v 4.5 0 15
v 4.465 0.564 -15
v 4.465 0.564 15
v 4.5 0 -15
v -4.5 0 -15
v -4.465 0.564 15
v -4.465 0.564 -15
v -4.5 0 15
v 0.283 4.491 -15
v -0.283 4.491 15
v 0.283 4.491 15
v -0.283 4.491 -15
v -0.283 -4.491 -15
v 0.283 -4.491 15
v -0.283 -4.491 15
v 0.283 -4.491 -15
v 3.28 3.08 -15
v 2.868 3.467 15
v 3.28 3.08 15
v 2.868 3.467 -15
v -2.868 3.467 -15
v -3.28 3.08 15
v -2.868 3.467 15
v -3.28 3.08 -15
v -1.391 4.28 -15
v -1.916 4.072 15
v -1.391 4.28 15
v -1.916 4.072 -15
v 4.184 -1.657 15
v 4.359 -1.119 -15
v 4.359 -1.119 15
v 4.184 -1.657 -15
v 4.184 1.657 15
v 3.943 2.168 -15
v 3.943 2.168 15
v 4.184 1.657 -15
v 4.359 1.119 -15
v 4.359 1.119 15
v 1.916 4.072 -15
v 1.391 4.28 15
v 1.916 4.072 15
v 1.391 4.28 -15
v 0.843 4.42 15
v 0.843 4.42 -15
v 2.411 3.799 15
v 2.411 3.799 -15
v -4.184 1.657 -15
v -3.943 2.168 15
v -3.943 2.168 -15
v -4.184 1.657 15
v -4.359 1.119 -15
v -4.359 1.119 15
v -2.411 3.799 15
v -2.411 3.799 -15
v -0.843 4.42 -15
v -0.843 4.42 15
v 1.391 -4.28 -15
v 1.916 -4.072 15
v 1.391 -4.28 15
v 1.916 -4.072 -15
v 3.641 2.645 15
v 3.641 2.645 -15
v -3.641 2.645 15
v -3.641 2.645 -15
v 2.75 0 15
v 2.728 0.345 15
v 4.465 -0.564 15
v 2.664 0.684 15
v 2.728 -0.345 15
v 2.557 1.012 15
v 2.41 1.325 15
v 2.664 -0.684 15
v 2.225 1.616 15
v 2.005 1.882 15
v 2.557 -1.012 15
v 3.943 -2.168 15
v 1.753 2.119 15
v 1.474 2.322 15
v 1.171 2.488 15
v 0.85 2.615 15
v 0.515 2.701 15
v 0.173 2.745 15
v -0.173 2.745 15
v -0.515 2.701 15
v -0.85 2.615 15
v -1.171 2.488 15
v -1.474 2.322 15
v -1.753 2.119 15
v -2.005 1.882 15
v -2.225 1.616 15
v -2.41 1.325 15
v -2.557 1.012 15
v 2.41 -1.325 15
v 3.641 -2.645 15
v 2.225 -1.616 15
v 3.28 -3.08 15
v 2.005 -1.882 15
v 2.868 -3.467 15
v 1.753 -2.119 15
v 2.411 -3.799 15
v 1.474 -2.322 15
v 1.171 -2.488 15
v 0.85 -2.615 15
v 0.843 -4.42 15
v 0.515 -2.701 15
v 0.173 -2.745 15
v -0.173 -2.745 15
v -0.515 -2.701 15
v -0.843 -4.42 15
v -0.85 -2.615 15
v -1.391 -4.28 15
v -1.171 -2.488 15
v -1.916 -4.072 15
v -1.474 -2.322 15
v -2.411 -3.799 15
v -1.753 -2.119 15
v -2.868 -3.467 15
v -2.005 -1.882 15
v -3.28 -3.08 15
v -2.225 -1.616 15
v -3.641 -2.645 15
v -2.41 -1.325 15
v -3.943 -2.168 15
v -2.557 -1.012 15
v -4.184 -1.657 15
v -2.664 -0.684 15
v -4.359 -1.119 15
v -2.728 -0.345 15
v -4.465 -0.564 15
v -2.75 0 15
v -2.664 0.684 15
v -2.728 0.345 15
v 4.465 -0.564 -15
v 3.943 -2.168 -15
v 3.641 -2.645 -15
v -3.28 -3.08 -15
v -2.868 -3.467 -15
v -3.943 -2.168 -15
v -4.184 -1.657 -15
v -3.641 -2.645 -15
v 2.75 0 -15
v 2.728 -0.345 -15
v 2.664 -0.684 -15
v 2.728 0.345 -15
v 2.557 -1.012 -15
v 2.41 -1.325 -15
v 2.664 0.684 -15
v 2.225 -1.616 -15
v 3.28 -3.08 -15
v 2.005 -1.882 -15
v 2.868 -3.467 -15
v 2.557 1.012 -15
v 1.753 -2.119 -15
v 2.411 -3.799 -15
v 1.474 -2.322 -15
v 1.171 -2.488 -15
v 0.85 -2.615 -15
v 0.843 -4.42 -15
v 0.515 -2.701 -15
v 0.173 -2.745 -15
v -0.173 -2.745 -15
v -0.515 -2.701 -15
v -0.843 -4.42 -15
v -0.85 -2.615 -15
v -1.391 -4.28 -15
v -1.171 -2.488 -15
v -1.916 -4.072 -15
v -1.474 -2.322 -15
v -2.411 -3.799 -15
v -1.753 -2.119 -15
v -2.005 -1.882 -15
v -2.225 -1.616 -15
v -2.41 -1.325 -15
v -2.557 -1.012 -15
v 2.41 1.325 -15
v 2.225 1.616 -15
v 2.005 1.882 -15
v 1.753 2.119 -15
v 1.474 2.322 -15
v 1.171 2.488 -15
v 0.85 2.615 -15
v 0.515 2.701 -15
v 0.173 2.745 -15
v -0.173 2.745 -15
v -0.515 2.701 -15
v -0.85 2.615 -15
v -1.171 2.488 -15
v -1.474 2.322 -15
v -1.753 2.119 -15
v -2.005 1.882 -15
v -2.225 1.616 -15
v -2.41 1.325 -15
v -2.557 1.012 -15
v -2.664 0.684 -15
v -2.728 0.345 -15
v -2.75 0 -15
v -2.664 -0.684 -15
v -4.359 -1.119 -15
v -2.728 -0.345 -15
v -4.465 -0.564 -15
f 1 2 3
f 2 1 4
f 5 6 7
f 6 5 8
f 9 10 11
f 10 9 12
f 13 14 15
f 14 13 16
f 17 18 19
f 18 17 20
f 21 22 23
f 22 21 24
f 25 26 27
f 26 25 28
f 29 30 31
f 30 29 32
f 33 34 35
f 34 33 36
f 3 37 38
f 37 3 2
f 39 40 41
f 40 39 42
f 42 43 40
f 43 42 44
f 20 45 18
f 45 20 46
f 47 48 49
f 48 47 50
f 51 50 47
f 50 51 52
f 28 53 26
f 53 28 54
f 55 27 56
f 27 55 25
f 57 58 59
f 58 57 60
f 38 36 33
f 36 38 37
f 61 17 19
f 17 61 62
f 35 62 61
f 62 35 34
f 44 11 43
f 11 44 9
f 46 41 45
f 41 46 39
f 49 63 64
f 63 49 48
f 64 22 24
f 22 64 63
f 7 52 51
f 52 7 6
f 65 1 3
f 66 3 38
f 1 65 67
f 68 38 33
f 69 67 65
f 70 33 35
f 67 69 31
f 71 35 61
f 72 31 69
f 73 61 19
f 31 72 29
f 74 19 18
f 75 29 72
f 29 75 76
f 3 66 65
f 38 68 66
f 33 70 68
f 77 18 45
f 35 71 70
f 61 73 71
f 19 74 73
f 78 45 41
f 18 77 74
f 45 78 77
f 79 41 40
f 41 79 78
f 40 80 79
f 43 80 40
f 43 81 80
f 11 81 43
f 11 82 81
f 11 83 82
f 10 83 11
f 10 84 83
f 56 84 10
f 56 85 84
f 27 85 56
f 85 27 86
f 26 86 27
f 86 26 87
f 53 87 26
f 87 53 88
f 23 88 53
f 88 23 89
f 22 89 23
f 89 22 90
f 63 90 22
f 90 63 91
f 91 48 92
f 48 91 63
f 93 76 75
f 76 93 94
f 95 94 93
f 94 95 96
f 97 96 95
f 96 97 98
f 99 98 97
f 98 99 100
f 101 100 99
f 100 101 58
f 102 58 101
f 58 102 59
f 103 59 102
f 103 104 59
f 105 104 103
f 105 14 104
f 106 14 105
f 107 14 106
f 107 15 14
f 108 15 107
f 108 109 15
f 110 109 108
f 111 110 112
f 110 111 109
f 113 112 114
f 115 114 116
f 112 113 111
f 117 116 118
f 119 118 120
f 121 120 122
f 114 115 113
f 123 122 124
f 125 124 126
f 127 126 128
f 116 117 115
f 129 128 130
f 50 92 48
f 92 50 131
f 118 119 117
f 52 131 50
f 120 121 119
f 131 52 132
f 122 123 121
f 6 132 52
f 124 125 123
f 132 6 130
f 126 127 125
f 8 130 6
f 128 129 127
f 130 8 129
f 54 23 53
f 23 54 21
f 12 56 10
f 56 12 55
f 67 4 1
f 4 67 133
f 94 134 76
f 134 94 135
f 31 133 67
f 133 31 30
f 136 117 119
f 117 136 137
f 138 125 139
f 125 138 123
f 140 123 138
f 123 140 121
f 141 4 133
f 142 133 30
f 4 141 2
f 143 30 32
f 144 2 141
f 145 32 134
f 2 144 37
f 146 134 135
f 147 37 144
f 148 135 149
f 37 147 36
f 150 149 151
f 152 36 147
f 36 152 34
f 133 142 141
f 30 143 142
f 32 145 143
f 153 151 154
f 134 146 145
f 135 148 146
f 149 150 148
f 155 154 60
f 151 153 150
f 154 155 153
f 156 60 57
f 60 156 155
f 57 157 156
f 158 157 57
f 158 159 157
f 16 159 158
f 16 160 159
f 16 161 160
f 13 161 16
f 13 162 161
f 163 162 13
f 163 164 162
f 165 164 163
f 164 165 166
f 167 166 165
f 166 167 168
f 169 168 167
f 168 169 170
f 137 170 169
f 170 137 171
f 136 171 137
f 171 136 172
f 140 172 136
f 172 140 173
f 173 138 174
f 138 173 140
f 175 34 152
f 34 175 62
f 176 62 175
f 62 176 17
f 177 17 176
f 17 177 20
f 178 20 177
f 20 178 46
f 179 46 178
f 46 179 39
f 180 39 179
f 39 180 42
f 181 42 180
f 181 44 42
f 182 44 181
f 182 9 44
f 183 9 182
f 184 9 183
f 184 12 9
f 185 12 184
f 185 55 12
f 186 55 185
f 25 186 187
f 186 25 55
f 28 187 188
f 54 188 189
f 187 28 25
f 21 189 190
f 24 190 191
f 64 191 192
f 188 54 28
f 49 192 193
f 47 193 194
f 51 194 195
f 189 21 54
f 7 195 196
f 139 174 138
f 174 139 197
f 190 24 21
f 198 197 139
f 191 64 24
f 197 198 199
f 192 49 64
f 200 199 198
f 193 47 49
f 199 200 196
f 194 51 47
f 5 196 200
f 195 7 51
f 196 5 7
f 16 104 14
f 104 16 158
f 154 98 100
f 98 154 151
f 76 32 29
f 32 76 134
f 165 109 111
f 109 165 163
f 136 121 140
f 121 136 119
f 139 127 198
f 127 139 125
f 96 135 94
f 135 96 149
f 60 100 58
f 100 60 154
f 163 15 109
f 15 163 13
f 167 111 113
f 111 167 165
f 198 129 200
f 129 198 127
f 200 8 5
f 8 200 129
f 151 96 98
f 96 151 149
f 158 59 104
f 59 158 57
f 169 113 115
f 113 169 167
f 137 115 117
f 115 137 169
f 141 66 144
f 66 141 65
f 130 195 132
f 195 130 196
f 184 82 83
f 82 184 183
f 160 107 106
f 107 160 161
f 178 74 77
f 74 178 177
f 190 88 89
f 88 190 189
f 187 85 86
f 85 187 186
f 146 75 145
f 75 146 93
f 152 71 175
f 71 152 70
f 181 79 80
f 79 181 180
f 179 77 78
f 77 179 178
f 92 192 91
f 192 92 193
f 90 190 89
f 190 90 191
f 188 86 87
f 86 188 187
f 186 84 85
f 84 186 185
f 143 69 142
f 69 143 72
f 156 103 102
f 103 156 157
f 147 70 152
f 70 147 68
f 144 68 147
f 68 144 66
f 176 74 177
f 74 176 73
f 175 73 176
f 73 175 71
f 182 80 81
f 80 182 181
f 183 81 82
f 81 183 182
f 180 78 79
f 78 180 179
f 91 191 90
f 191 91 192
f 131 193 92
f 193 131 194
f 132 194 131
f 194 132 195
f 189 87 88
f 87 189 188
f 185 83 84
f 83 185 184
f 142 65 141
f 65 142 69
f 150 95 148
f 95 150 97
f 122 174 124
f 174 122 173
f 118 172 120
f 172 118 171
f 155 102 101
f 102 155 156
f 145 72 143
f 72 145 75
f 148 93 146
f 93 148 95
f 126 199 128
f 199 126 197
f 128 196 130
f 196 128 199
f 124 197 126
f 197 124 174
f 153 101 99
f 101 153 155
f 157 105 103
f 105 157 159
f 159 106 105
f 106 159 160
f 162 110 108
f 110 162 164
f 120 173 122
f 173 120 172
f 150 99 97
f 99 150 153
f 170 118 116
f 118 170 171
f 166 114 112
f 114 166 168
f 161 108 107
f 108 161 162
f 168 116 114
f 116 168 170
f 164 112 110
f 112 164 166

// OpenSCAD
$fn = 50;


difference() {
	union() {
		translate(v = [0, 0, -15.0000000000]) {
			cylinder(h = 30, r = 4.5000000000);
		}
	}
	union() {
		translate(v = [0, 0, -100.0000000000]) {
			cylinder(h = 200, r = 2.7500000000);
		}
	}
}
